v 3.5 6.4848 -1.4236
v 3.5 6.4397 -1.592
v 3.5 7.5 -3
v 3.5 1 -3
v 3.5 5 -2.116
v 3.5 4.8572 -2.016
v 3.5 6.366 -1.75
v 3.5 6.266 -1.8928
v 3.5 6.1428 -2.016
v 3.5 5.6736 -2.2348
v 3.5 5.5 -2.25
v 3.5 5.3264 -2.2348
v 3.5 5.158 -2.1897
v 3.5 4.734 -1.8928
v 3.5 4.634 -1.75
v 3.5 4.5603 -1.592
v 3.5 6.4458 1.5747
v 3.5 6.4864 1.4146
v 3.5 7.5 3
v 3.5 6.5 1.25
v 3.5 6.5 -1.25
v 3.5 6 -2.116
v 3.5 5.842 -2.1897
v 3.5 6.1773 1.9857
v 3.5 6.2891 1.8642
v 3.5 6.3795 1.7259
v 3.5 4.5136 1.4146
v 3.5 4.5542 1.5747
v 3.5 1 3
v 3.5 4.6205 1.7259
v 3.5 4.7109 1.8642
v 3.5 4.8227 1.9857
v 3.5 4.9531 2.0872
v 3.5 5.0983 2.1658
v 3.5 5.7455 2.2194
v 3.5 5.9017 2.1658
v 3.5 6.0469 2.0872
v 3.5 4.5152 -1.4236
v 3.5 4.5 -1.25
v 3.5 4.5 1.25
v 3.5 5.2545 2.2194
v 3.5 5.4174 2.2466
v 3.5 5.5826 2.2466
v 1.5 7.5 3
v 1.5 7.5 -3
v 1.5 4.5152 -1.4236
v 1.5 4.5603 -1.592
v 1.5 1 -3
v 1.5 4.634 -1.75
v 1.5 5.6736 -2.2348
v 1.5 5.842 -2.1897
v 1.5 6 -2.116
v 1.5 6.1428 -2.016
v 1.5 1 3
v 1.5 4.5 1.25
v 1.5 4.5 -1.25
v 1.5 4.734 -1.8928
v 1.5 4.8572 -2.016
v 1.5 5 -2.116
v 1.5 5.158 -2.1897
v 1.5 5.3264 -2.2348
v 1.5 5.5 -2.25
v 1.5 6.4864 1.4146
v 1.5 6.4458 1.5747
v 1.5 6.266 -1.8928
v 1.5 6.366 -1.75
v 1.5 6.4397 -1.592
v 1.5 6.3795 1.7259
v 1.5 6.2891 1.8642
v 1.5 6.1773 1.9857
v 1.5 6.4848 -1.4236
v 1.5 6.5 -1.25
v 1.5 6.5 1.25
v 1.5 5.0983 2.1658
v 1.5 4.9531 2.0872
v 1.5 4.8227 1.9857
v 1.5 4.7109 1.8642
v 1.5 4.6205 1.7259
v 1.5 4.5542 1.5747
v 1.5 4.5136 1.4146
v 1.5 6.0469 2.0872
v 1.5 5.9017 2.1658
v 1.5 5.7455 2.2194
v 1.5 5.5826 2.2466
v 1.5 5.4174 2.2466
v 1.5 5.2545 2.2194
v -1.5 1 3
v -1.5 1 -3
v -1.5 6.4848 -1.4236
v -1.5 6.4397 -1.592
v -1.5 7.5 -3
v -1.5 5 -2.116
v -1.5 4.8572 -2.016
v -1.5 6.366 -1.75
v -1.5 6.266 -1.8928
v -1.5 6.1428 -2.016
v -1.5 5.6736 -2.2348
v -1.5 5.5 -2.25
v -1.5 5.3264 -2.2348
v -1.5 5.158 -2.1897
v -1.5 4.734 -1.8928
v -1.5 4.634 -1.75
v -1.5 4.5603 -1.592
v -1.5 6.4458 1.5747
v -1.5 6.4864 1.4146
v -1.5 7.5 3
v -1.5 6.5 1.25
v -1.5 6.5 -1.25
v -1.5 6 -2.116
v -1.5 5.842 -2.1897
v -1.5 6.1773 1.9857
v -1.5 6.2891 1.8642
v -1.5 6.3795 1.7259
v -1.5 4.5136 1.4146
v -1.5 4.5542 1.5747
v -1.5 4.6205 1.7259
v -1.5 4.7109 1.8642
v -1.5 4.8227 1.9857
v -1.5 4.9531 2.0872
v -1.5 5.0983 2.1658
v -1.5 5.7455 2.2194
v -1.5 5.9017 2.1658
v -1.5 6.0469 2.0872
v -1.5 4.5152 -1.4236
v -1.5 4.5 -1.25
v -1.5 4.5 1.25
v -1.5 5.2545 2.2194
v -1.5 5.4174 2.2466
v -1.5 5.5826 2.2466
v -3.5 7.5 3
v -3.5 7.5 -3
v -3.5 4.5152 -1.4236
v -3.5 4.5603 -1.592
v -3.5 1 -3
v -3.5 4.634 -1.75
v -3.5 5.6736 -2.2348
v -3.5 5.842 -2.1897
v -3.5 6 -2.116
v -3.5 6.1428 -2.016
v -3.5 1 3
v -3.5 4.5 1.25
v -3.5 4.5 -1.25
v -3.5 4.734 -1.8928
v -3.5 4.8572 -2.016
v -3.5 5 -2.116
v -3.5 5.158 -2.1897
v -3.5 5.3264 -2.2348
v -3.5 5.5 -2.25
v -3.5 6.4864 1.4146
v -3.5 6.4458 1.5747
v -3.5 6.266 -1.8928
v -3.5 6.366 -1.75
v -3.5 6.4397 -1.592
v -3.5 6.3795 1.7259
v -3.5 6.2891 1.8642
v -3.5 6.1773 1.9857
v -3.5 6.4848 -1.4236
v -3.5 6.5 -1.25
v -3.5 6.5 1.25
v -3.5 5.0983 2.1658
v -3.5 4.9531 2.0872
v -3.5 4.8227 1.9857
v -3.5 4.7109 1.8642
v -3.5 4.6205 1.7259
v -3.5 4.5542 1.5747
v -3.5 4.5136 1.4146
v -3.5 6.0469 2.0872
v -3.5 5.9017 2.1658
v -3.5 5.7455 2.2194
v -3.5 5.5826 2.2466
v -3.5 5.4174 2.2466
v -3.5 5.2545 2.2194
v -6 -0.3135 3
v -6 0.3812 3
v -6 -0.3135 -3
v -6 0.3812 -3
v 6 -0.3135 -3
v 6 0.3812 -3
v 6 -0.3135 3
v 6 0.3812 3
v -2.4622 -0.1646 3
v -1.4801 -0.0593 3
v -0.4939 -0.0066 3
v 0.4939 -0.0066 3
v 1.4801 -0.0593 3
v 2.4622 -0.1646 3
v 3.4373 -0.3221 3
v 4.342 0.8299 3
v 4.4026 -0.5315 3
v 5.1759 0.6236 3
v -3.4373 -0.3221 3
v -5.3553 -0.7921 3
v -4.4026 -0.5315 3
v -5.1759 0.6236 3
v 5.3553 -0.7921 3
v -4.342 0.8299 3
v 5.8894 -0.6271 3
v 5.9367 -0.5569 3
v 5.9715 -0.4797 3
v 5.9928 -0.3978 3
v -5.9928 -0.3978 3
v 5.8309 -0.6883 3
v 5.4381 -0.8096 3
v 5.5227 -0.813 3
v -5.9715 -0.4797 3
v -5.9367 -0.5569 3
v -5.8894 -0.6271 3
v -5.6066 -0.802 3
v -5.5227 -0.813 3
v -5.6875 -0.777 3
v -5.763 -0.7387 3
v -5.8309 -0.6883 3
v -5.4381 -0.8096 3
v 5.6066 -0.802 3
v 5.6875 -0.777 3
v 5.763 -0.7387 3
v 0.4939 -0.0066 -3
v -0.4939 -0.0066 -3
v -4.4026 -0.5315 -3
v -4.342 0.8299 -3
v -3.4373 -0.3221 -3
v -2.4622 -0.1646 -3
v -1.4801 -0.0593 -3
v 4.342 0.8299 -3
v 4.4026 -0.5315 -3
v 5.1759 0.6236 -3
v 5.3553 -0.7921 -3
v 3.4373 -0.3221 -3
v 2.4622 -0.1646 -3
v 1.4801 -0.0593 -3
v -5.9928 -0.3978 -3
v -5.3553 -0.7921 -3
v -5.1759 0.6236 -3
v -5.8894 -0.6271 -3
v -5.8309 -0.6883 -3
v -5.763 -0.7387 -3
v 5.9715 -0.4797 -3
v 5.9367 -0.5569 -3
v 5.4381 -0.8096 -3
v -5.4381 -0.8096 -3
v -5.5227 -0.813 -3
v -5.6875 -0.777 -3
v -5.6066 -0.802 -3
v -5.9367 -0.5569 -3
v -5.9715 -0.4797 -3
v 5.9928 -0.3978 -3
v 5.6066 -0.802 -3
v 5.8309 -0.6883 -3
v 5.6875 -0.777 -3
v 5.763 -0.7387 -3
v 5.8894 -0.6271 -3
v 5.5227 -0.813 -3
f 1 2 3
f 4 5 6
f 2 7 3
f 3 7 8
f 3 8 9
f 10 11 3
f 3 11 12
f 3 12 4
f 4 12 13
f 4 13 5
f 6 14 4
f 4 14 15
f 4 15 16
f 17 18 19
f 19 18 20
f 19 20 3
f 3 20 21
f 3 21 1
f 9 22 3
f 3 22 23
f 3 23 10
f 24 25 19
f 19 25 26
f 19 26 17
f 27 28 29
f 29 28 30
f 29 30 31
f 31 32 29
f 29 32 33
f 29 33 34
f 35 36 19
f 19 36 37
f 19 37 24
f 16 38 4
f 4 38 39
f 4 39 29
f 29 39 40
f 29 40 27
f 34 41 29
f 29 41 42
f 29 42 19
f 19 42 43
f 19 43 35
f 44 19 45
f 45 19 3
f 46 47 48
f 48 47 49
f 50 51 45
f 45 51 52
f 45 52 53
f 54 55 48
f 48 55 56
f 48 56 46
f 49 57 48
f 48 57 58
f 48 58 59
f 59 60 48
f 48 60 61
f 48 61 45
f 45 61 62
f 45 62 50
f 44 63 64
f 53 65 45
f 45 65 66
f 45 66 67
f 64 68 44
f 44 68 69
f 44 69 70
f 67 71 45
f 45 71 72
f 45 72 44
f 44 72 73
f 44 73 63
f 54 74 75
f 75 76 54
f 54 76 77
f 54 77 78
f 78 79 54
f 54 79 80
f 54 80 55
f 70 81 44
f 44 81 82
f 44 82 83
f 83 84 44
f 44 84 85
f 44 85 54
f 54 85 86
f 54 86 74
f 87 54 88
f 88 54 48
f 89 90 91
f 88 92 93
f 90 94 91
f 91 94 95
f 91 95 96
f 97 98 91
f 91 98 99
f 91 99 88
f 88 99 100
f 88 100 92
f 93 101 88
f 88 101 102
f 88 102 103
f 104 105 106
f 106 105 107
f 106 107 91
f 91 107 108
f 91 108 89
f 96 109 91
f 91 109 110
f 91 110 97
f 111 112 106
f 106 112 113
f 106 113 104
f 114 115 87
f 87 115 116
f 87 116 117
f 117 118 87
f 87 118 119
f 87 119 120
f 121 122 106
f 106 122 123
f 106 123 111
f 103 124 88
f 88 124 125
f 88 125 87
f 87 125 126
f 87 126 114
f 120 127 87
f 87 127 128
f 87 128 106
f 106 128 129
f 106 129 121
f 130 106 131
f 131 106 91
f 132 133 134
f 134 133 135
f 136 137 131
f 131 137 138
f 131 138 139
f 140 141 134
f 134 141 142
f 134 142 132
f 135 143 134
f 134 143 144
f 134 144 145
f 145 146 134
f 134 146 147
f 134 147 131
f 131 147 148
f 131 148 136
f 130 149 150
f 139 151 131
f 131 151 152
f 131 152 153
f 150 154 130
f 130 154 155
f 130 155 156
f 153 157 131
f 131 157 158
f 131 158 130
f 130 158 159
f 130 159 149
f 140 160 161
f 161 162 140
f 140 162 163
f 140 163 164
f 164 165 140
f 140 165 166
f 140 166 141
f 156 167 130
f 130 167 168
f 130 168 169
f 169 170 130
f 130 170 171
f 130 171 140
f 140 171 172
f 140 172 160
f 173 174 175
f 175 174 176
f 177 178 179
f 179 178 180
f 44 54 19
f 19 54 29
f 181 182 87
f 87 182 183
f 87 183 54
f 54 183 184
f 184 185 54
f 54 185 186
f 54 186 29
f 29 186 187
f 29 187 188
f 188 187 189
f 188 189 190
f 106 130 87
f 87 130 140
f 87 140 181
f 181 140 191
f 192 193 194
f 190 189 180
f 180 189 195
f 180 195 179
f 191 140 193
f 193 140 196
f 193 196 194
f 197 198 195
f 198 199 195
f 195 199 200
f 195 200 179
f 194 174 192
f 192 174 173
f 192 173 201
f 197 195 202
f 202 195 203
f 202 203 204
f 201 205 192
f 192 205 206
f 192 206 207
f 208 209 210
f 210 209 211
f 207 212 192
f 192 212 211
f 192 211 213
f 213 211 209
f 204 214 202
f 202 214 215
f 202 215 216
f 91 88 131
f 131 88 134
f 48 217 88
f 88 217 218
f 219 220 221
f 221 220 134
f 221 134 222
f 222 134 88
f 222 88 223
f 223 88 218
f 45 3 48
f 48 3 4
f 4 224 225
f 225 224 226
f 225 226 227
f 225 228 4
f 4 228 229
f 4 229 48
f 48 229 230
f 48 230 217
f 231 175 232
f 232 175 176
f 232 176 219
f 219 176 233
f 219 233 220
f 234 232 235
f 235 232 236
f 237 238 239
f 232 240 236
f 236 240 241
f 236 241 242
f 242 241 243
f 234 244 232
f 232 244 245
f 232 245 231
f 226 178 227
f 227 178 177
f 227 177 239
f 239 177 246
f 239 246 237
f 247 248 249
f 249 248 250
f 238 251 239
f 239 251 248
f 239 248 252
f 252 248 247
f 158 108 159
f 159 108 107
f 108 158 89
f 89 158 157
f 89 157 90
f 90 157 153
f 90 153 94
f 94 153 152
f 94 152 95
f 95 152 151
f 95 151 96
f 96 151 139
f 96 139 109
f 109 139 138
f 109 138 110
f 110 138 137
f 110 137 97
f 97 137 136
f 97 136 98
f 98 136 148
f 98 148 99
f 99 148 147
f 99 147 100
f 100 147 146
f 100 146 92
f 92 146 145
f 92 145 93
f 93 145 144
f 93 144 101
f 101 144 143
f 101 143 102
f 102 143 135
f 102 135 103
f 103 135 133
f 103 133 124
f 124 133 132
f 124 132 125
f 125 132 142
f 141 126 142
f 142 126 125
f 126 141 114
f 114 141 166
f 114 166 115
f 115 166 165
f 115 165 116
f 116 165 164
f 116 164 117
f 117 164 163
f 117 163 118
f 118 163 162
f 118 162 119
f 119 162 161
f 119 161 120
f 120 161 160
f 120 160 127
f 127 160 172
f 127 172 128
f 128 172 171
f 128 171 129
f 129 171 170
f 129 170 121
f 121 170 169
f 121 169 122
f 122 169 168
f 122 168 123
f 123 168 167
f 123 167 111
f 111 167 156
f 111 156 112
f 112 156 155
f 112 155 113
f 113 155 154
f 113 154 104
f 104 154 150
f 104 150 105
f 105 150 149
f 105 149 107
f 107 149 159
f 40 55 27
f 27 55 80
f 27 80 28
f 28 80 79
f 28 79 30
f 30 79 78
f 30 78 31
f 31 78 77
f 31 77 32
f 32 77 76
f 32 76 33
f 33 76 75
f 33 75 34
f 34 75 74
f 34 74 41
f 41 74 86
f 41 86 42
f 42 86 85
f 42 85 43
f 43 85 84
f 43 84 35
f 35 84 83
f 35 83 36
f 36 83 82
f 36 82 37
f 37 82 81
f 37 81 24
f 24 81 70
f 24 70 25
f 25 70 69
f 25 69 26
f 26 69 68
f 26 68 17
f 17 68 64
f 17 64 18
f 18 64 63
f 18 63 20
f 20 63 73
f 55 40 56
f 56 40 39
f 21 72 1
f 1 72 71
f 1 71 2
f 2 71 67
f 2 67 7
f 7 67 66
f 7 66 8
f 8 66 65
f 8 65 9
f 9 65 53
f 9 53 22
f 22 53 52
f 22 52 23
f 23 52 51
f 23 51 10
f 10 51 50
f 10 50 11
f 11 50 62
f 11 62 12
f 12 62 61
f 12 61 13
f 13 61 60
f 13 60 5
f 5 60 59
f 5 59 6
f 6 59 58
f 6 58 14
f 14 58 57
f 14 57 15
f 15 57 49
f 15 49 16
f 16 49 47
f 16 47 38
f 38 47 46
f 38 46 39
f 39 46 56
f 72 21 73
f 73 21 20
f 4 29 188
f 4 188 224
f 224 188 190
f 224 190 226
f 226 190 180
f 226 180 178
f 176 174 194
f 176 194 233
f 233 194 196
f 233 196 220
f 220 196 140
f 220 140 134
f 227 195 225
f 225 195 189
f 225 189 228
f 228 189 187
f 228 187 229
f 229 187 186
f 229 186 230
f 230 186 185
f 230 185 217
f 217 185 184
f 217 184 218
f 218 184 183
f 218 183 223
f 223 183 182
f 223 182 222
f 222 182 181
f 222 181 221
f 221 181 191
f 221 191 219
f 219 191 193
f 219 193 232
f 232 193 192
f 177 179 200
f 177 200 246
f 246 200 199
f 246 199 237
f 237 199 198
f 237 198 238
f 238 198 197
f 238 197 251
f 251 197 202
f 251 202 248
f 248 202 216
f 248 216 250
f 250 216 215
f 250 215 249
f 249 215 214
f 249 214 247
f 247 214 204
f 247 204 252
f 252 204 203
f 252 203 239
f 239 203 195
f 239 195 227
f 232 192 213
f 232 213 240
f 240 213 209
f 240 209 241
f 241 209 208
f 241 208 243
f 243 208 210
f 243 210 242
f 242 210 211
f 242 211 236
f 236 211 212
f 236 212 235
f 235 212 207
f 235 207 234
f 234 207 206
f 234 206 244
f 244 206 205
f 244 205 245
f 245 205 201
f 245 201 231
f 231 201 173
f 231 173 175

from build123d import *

# Parameters (mm, degrees)
BOSS_EXTRUDE1_DEPTH     = 3
CUT_EXTRUDE4_DEPTH      = 13.469963913
CUT_EXTRUDE4_DEPTH_BACK = 13.469963913
CUT_EXTRUDE5_DEPTH      = 12.324751653
CUT_EXTRUDE5_DEPTH_BACK = 12.324751653
SKETCH6_R               = 18.5
FILLET1_R               = 0.5


with BuildPart() as part:
    # Sketch1 → Boss-Extrude1 (new, symmetric)
    with BuildSketch(Plane.XY):
        Polygon((-6, -1), (6, -1), (6, 1), (3.5, 1), (3.5, 7.5), (1.5, 7.5), (1.5, 1), (-1.5, 1), (-1.5, 7.5), (-3.5, 7.5), (-3.5, 1), (-6, 1), align=None)
    extrude(amount=BOSS_EXTRUDE1_DEPTH, both=True)

    # Sketch5 → Cut-Extrude4 (cut, two sides: drawn at the far end of the back side and taken through both)
    with BuildSketch(Plane.ZY.offset(3.5).offset(-CUT_EXTRUDE4_DEPTH_BACK)):
        with BuildLine():
            Line((1.25, 4.5), (-1.25, 4.5))
            ThreePointArc((-1.25, 4.5), (-2.25, 5.5), (-1.25, 6.5))
            Line((-1.25, 6.5), (1.25, 6.5))
            ThreePointArc((1.25, 6.5), (2.25, 5.5), (1.25, 4.5))
        make_face()
    extrude(amount=CUT_EXTRUDE4_DEPTH + CUT_EXTRUDE4_DEPTH_BACK, mode=Mode.SUBTRACT)

    # Sketch6 → Cut-Extrude5 (cut, two sides: drawn at the far end of the back side and taken through both)
    with BuildSketch(Plane.XY.offset(3).offset(-CUT_EXTRUDE5_DEPTH_BACK)):
        with Locations((0, -18.5)):
            Circle(SKETCH6_R)
        with BuildLine():
            Line((-6, 1), (-3.5, 1))
            ThreePointArc((-3.5, 1), (-4.760065757, 0.731270733), (-6, 0.381207588))
            Line((-6, 0.381207588), (-6, 1))
        make_face()
        with BuildLine():
            Line((3.5, 1), (6, 1))
            Line((6, 1), (6, 0.381207588))
            ThreePointArc((6, 0.381207588), (4.760065757, 0.731270733), (3.5, 1))
        make_face()
    extrude(amount=CUT_EXTRUDE5_DEPTH + CUT_EXTRUDE5_DEPTH_BACK, mode=Mode.SUBTRACT)

    # Fillet1
    fillet1_edges = [part.edges().sort_by_distance(p)[0] for p in [
        (6, -1, 0),
        (-6, -1, 0),
    ]]
    fillet(fillet1_edges, radius=FILLET1_R)


solid = part.part
